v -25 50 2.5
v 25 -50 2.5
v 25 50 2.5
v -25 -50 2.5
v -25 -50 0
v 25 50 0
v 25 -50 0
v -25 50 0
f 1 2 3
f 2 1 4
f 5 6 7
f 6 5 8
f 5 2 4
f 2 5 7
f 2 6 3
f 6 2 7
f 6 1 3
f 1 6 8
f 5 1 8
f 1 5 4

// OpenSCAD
// file: dimensions.scad
box_width = 50;
box_height = 30;
box_depth = 100;
box_left = -(box_width / 2);
box_right = -box_left;
box_front = -(box_depth / 2);
box_back = -box_front;    

bridge_depth = 20;
ridge_width = 5;

slid_width = 28;
slid_height = 2;
slid_length = (box_depth / 2) - bridge_depth;

peg_height = 5;

lid_height = 2.5;

led_width = 2.5;
led_depth = 5;
led_box_height = 3.2;
led_cyl_height = 4.8;
anode_length = 28;
cathode_length = 29;
led_radius = 1;
wire_radius = 0.5;

corner = ridge_width / 2;

transistor_width = 2;
transistor_depth = 2.5;
transistor_box_height = 1;
transistor_dome_height = 2;
transistor_dome_radius = 0.75;
wire_length = 8;
wire_radius = 0.5;
// main file
include <dimensions.scad>

// Top-lid.
translate([-(box_width / 2), -(box_depth / 2), 0])
        cube(size = [box_width, 
             box_depth, 
             lid_height]);
